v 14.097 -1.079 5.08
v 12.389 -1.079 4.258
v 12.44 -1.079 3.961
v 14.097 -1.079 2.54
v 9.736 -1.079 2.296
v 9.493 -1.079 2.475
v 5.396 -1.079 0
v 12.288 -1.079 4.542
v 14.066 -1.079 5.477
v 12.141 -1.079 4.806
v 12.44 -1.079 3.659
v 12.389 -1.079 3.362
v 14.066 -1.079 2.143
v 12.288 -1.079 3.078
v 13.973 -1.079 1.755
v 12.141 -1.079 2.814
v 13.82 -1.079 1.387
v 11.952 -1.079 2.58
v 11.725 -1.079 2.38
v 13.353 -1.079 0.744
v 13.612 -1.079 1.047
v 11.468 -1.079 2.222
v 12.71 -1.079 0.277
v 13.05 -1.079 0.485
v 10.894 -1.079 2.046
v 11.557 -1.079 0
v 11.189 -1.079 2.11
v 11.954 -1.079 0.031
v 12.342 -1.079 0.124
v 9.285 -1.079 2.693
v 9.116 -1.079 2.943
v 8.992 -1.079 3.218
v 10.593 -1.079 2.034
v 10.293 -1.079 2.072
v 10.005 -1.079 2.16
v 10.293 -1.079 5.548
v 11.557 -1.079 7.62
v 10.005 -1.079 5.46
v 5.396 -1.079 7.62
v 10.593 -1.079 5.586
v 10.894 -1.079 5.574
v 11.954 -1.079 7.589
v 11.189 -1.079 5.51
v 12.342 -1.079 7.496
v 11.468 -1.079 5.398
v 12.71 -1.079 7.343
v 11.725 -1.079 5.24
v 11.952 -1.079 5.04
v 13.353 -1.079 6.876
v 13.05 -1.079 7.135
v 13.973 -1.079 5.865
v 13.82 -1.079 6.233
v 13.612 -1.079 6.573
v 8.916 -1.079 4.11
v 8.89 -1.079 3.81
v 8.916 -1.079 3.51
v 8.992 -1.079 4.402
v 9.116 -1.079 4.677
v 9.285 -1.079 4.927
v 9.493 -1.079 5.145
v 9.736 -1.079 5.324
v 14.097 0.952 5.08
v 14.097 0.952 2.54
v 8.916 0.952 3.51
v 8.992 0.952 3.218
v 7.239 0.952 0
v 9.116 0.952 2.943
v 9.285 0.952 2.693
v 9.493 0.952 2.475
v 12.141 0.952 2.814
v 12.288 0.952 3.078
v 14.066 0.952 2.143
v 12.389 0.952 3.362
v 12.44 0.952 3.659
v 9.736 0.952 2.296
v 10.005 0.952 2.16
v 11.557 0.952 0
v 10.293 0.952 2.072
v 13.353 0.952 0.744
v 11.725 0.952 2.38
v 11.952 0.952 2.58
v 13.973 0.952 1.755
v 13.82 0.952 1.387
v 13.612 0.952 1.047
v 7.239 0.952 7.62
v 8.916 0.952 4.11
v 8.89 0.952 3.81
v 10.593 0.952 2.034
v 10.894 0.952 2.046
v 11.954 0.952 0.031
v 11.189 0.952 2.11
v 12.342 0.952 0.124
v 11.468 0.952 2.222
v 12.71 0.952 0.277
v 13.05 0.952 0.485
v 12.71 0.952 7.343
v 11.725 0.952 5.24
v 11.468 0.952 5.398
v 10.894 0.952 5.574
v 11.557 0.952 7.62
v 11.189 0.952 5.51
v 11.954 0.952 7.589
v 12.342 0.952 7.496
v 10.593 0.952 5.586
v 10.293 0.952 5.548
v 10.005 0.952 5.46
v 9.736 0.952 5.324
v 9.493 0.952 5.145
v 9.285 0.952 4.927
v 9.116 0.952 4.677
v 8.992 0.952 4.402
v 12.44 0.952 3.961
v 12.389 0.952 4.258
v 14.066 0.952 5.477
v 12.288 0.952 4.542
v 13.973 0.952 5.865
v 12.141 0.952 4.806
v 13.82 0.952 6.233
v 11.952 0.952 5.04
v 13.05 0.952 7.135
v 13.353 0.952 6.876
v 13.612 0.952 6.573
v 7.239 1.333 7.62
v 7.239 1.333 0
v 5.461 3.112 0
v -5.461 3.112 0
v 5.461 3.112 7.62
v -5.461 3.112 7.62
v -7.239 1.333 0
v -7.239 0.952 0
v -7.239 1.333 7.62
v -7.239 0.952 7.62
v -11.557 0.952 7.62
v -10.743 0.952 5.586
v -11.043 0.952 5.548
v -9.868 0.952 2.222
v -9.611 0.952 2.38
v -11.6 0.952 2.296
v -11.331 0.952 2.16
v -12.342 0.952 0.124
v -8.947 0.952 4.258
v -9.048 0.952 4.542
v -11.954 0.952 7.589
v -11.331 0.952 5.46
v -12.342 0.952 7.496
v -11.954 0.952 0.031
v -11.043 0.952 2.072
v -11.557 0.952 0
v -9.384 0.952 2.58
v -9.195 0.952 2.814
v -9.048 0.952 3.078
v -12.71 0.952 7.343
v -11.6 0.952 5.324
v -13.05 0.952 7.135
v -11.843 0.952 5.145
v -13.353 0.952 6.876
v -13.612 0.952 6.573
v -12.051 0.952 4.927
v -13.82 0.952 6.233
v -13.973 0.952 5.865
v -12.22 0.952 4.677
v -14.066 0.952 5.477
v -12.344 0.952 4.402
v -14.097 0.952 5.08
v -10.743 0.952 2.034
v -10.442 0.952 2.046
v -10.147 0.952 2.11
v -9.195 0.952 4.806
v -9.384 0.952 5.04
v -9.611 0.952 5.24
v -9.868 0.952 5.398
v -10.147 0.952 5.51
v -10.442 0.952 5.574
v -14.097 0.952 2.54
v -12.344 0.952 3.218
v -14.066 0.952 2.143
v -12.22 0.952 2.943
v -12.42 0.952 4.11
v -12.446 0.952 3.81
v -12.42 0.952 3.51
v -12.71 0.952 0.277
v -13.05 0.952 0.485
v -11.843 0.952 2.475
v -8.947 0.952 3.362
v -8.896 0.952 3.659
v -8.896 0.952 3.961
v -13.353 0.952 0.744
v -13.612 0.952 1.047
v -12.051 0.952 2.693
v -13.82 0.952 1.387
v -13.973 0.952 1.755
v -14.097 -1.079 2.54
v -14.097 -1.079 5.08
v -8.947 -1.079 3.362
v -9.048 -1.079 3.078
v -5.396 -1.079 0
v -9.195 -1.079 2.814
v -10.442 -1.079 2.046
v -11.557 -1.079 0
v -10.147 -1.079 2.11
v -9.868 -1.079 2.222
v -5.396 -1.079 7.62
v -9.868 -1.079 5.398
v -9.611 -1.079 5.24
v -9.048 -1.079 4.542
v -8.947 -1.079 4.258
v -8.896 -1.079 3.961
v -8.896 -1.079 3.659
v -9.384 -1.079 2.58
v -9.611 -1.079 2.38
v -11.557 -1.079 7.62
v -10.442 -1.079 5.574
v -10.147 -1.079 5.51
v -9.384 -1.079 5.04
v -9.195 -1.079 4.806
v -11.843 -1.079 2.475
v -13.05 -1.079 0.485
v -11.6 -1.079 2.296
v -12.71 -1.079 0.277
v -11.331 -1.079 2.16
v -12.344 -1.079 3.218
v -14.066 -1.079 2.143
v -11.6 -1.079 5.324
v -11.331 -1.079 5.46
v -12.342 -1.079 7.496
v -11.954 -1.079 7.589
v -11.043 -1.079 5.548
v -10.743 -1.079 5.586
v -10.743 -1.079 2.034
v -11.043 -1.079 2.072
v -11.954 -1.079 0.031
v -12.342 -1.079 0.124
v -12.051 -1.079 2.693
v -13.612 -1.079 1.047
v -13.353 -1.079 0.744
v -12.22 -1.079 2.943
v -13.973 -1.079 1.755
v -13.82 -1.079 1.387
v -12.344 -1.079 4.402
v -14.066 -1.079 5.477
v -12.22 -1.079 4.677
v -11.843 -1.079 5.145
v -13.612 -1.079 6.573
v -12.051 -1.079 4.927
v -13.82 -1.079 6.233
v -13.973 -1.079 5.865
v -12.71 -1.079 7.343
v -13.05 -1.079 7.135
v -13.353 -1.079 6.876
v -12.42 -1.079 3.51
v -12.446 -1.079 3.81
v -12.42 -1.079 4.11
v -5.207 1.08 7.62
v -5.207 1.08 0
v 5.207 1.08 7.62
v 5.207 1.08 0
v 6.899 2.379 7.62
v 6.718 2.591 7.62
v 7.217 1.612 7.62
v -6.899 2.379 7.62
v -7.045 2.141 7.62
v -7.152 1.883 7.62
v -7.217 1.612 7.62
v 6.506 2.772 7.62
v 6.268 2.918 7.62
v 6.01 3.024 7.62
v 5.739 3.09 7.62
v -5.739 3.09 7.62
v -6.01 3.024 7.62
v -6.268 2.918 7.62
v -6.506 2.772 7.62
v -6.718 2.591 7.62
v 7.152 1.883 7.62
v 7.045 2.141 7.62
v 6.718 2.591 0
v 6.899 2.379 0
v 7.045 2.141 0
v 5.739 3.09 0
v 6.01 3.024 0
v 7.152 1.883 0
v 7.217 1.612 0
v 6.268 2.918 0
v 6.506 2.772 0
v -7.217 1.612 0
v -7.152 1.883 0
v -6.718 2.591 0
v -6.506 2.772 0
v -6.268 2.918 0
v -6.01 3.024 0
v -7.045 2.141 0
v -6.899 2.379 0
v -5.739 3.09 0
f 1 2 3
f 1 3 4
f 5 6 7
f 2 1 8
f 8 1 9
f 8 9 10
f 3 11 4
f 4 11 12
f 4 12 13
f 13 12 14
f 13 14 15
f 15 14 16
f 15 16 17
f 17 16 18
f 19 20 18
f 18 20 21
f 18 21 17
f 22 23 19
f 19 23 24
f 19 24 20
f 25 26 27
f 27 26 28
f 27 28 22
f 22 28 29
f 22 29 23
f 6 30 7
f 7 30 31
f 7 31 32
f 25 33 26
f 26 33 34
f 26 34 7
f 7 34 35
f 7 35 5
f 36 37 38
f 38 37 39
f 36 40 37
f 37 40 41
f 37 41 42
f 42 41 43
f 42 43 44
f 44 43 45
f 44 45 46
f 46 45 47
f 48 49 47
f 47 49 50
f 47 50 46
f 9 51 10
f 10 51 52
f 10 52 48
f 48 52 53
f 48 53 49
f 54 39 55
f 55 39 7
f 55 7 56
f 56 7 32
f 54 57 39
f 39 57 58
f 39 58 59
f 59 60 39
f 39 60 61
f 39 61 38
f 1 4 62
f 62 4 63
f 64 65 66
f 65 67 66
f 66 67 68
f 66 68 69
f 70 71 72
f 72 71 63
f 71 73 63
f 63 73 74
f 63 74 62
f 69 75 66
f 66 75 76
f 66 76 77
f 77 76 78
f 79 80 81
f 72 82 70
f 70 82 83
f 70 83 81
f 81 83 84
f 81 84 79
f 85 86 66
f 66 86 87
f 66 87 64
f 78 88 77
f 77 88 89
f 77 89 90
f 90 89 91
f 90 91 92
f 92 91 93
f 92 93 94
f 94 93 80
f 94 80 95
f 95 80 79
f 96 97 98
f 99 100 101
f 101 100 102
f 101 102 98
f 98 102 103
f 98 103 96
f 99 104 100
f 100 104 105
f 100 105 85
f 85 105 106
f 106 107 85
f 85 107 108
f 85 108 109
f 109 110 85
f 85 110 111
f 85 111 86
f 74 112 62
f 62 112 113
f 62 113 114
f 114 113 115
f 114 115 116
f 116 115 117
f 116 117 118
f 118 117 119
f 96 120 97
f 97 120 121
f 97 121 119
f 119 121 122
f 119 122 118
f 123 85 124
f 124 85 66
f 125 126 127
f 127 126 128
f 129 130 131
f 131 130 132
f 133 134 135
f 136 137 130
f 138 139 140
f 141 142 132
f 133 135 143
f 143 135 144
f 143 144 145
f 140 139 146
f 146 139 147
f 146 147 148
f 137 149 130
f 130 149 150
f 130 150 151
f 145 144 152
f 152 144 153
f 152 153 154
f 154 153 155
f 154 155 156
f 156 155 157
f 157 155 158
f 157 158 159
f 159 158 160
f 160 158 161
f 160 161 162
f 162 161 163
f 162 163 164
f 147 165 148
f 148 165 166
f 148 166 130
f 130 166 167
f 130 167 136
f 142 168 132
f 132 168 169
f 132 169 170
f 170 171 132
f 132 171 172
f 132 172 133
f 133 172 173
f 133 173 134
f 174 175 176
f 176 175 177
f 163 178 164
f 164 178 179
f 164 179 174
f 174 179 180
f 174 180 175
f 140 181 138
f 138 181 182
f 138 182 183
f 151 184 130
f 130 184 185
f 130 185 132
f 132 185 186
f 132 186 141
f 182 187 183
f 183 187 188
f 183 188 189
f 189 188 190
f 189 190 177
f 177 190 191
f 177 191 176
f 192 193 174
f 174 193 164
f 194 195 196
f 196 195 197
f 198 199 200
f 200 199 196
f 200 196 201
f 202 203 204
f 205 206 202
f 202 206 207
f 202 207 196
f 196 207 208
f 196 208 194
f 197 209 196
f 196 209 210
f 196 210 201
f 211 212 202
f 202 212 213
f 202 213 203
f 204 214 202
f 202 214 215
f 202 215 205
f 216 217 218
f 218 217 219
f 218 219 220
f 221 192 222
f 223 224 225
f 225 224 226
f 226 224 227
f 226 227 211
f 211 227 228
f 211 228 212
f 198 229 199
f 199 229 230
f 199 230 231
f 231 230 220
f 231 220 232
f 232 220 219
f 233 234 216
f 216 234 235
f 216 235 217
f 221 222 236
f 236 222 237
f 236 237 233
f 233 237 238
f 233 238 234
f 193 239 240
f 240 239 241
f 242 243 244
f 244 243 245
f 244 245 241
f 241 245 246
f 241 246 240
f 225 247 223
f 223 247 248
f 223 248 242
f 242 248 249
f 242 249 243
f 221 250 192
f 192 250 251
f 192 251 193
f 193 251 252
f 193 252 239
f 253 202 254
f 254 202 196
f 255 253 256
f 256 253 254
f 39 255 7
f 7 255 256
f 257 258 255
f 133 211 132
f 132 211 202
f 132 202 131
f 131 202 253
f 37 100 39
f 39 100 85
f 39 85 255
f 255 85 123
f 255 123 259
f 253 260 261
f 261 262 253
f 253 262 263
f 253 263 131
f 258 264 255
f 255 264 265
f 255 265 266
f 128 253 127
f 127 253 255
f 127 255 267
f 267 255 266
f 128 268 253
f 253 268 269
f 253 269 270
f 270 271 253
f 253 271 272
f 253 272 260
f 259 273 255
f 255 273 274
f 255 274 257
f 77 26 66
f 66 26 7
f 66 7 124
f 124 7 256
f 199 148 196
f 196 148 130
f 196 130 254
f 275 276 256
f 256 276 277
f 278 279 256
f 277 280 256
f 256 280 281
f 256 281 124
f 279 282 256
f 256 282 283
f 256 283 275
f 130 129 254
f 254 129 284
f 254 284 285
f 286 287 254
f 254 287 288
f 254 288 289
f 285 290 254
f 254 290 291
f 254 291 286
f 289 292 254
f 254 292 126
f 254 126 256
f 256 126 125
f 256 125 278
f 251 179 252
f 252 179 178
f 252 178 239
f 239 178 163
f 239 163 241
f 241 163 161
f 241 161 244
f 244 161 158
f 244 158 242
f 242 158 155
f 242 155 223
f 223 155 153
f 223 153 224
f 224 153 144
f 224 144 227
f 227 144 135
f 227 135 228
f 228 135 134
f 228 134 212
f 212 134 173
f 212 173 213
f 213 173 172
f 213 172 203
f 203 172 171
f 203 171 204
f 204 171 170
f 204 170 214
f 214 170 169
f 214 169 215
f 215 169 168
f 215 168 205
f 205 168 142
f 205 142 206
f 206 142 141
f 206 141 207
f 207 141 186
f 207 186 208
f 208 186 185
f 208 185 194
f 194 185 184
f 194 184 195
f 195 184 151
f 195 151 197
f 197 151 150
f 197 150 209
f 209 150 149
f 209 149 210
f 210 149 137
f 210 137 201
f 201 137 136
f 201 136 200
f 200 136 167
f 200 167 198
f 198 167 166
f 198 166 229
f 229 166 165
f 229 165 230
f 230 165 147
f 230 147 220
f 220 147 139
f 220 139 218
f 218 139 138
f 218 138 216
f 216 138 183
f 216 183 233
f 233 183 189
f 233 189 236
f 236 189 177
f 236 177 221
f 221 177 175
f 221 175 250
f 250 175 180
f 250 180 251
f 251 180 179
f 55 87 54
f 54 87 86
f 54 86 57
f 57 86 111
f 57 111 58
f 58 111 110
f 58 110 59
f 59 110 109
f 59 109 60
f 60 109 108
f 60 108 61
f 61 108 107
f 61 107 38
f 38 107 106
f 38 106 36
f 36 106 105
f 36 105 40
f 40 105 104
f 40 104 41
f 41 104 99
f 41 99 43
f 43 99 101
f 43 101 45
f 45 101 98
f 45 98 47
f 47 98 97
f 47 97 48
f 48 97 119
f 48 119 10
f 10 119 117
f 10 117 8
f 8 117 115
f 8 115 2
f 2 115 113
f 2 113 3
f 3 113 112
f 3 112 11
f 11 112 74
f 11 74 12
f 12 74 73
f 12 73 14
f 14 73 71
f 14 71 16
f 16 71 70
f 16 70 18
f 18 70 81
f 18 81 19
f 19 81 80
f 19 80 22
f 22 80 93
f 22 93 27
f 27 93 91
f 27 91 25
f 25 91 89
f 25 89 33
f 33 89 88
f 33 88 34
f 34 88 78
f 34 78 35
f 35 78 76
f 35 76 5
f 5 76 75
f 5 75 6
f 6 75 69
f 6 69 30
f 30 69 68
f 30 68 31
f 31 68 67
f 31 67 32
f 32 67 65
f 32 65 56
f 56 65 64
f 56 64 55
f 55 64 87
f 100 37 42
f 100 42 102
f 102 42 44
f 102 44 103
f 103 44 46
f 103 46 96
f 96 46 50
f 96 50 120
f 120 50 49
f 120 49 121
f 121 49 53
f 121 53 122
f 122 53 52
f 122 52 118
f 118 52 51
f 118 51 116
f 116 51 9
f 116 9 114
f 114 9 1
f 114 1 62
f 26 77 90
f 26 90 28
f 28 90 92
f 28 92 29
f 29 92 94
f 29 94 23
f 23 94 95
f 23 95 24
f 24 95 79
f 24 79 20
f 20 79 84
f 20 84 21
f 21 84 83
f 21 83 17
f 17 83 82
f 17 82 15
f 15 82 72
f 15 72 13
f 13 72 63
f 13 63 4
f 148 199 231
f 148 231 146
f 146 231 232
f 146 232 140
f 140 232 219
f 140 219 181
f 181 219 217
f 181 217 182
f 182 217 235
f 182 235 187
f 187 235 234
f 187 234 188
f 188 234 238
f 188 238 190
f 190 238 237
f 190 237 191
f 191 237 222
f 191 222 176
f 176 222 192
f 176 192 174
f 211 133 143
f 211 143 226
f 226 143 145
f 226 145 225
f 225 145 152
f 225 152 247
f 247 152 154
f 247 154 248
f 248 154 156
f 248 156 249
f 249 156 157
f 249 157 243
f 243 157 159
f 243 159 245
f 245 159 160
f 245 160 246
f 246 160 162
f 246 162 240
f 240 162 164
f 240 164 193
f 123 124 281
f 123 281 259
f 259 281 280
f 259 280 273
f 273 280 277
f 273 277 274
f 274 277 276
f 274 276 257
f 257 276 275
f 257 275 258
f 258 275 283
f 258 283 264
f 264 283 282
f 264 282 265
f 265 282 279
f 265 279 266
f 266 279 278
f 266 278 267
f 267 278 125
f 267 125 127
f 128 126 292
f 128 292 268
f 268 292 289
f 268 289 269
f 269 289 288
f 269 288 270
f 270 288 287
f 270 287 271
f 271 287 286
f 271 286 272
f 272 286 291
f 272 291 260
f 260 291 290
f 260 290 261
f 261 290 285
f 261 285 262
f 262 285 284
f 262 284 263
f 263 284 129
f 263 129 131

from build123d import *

# Parameters (mm, degrees)
BOSS_EXTRUDE1_DEPTH = 7.62
SKETCH2_R           = 1.778
CUT_EXTRUDE1_DEPTH  = 17.169449279
FILLET1_R           = 2.54
FILLET2_R           = 1.778
DRAFT1_ANGLE        = 5


with BuildPart() as part:
    # Sketch1 → Boss-Extrude1 (new body)
    with BuildSketch(Plane.XY):
        Polygon((-7.239, 0.9525), (-7.239, 3.1115), (7.239, 3.1115), (7.239, 0.9525), (14.097, 0.9525), (14.097, -1.0795), (5.207, -1.0795), (5.207, 1.0795), (-5.207, 1.0795), (-5.207, -1.0795), (-14.097, -1.0795), (-14.097, 0.9525), align=None)
    extrude(amount=BOSS_EXTRUDE1_DEPTH)

    # Sketch2 → Cut-Extrude1 (cut, through all)
    with BuildSketch(Plane(origin=(0, 0.9525, 0), x_dir=(1, 0, 0), z_dir=(0, 1, 0))):
        with Locations(Location((-10.668, -3.81, 0), (0, 0, 180))):
            Circle(SKETCH2_R)
        with Locations(Location((10.668, -3.81, 0), (0, 0, 180))):
            Circle(SKETCH2_R)
    extrude(amount=-CUT_EXTRUDE1_DEPTH, mode=Mode.SUBTRACT)

    # Fillet1
    fillet1_edges = [part.edges().sort_by_distance(p)[0] for p in [
        (-14.097, -0.0635, 0),
        (14.097, -0.0635, 0),
        (-14.097, -0.0635, 7.62),
        (14.097, -0.0635, 7.62),
    ]]
    fillet(fillet1_edges, radius=FILLET1_R)

    # Fillet2
    fillet2_edges = [part.edges().sort_by_distance(p)[0] for p in [
        (-7.239, 3.1115, 3.81),
        (7.239, 3.1115, 3.81),
    ]]
    fillet(fillet2_edges, radius=FILLET2_R)

    # Draft1
    draft1_faces = [part.faces().sort_by_distance(p)[0] for p in [
        (5.207, 0, 3.81),
        (-5.207, 0, 3.81),
    ]]
    draft(draft1_faces, Plane(origin=(-5.207, 1.0795, 7.62), x_dir=(0, 0, -1), z_dir=(0, -1, 0)), DRAFT1_ANGLE)


solid = part.part
